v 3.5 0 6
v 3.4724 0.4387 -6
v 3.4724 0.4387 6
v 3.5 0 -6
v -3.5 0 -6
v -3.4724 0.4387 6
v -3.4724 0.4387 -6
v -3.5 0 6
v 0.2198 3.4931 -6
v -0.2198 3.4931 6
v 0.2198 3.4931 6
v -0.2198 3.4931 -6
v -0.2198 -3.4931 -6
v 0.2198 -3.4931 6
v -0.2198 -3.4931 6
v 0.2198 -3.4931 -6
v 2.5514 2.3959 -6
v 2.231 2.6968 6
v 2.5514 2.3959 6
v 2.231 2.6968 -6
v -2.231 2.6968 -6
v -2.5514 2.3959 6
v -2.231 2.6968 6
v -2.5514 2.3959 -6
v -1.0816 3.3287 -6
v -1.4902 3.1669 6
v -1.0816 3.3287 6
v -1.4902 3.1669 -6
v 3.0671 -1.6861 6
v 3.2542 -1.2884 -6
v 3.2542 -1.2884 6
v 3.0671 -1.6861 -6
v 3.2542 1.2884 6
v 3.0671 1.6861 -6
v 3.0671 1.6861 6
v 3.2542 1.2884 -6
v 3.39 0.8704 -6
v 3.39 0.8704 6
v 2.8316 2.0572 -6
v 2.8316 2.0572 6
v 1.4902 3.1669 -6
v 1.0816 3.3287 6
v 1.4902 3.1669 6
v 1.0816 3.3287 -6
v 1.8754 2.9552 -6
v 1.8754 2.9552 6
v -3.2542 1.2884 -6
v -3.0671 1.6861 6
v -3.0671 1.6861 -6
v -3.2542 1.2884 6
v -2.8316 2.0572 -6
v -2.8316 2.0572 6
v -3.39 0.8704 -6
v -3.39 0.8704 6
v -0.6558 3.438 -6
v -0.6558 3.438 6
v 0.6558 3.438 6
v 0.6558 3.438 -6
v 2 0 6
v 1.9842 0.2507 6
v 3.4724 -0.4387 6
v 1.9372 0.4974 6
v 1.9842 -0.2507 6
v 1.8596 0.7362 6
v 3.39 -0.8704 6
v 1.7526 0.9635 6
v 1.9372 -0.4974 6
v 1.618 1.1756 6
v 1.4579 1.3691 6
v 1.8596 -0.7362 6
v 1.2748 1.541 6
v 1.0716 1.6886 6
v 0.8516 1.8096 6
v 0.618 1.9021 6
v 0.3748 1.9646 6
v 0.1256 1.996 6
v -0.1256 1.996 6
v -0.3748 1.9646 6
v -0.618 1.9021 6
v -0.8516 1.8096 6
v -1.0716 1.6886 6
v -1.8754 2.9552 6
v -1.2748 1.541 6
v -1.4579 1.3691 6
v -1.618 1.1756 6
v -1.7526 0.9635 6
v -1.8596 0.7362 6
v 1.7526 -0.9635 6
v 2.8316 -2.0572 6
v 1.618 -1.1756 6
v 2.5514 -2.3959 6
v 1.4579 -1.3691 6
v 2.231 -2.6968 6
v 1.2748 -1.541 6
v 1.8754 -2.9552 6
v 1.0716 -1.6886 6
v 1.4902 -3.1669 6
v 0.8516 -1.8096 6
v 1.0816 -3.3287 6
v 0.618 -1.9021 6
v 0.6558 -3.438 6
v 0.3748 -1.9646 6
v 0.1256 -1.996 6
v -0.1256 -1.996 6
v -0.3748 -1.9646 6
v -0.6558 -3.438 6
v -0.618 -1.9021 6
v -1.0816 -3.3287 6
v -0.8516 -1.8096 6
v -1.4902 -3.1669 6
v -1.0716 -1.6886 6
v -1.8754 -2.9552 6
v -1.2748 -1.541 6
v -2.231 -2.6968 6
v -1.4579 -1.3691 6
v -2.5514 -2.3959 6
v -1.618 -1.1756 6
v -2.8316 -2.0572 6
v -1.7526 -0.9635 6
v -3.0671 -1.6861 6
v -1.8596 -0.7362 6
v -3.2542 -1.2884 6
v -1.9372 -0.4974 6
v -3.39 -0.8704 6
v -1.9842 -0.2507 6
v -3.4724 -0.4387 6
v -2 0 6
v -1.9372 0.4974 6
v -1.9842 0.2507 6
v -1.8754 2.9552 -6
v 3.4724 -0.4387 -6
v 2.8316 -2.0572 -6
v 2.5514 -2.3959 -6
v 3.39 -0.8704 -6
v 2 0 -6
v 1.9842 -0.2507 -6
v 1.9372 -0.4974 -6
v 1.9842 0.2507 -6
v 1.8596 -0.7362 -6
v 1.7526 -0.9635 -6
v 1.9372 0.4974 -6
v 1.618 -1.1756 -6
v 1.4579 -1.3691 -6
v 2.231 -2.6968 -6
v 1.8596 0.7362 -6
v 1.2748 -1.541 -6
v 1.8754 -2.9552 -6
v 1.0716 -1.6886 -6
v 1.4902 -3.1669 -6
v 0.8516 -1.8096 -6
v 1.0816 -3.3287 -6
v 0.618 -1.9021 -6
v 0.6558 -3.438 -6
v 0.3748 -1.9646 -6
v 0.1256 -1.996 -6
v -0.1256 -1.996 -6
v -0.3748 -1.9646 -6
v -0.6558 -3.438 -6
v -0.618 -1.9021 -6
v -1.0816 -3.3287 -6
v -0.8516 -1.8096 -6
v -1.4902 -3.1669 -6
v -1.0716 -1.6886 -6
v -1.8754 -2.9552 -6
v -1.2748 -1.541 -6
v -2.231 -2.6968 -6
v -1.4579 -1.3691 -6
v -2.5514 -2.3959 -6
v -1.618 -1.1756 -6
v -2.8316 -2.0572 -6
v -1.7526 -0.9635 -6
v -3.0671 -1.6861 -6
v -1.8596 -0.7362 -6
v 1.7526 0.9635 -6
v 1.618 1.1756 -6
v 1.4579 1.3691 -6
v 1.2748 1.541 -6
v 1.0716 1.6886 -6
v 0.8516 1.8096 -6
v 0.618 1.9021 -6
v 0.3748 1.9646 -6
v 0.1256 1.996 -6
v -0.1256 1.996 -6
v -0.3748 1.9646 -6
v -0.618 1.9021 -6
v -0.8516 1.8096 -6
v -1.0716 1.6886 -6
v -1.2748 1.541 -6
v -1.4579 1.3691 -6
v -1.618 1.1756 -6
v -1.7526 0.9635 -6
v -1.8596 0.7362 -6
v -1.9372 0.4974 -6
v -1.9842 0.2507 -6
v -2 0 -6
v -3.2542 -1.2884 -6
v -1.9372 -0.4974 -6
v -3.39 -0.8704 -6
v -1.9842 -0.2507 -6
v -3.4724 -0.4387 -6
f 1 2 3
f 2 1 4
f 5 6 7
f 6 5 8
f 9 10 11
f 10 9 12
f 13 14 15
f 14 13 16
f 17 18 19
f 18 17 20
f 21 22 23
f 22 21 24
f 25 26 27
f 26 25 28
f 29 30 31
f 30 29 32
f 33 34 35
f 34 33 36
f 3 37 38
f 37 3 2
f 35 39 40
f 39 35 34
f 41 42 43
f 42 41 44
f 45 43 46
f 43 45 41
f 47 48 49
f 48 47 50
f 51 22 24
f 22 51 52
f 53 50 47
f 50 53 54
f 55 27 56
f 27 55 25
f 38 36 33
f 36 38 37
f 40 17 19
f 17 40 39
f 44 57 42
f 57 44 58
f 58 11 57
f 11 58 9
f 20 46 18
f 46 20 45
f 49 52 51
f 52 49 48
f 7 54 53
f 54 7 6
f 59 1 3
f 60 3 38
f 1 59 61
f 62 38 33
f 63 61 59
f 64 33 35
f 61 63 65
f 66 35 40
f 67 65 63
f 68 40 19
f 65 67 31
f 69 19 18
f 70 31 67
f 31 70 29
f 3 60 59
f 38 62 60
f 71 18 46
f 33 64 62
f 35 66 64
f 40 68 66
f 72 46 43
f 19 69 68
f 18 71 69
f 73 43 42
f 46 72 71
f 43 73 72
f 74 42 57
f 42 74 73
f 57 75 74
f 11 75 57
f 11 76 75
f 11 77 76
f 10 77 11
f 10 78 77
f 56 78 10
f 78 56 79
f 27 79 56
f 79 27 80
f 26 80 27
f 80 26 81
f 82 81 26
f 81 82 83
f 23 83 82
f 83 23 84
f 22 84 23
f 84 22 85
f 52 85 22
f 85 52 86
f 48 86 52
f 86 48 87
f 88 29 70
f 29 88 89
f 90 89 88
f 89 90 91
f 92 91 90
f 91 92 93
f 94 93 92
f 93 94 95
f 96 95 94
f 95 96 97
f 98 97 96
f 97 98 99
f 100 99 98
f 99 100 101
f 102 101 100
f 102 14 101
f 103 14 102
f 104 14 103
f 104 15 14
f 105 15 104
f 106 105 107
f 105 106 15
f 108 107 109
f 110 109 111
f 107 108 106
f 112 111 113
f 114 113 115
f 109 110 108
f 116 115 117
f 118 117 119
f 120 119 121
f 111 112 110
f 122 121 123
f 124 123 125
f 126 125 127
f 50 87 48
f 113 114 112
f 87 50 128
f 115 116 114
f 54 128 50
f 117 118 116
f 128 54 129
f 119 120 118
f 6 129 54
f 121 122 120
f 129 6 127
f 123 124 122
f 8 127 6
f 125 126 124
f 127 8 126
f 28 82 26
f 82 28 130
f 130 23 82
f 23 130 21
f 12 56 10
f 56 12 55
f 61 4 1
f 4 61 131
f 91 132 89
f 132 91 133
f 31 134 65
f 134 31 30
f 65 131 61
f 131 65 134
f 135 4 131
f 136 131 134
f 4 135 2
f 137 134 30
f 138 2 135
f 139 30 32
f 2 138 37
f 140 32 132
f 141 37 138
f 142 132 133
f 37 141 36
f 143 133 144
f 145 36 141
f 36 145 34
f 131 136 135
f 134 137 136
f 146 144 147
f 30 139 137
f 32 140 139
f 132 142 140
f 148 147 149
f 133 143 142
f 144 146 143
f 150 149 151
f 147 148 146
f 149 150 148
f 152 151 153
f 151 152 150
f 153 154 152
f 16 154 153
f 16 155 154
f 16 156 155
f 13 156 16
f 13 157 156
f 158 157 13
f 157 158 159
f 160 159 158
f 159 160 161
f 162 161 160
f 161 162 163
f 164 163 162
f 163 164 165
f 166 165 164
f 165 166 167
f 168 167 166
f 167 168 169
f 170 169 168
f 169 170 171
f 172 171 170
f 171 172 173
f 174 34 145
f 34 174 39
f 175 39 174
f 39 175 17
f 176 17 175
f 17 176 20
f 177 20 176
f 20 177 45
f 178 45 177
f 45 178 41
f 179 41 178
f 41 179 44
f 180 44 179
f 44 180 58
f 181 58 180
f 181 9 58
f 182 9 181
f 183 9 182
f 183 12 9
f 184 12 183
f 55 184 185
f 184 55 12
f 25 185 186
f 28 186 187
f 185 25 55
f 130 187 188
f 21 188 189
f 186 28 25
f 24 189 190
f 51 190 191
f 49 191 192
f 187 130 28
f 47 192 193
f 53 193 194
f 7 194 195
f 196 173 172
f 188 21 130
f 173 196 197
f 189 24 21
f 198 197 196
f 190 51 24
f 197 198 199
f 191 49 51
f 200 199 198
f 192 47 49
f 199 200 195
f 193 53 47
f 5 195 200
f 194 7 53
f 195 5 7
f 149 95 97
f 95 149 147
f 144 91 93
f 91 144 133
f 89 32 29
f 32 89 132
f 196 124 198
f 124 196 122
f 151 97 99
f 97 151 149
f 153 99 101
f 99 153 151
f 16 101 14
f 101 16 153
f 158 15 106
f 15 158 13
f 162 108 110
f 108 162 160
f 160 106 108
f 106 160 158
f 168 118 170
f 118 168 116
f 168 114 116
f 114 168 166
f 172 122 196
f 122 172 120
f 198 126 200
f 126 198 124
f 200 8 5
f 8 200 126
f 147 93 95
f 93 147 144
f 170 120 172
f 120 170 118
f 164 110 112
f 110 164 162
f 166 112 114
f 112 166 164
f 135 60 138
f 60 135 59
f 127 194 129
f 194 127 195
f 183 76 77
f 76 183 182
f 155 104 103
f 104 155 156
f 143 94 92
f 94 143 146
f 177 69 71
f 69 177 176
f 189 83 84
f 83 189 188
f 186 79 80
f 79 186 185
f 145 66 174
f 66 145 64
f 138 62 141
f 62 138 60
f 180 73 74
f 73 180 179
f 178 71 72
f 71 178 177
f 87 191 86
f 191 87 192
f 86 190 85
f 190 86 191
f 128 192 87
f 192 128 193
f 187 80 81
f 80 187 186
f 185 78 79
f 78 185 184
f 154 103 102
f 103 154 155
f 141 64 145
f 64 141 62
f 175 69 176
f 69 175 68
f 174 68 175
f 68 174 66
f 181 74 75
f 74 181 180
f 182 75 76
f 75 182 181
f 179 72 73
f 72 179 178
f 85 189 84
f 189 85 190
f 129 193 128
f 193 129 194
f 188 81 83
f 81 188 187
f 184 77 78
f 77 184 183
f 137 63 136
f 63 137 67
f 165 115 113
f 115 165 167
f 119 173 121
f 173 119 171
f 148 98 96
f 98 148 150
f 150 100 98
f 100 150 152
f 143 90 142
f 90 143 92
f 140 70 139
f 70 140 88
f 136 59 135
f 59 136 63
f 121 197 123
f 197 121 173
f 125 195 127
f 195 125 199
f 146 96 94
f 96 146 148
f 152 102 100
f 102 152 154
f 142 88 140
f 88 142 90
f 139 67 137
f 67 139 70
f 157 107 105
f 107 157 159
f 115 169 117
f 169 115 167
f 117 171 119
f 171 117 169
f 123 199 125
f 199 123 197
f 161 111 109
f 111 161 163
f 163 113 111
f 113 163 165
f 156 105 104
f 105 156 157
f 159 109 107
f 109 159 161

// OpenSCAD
$fn = 50;


difference() {
	union() {
		translate(v = [0, 0, -6.0000000000]) {
			cylinder(h = 12, r = 3.5000000000);
		}
	}
	union() {
		translate(v = [0, 0, -100.0000000000]) {
			cylinder(h = 200, r = 2.0000000000);
		}
	}
}
